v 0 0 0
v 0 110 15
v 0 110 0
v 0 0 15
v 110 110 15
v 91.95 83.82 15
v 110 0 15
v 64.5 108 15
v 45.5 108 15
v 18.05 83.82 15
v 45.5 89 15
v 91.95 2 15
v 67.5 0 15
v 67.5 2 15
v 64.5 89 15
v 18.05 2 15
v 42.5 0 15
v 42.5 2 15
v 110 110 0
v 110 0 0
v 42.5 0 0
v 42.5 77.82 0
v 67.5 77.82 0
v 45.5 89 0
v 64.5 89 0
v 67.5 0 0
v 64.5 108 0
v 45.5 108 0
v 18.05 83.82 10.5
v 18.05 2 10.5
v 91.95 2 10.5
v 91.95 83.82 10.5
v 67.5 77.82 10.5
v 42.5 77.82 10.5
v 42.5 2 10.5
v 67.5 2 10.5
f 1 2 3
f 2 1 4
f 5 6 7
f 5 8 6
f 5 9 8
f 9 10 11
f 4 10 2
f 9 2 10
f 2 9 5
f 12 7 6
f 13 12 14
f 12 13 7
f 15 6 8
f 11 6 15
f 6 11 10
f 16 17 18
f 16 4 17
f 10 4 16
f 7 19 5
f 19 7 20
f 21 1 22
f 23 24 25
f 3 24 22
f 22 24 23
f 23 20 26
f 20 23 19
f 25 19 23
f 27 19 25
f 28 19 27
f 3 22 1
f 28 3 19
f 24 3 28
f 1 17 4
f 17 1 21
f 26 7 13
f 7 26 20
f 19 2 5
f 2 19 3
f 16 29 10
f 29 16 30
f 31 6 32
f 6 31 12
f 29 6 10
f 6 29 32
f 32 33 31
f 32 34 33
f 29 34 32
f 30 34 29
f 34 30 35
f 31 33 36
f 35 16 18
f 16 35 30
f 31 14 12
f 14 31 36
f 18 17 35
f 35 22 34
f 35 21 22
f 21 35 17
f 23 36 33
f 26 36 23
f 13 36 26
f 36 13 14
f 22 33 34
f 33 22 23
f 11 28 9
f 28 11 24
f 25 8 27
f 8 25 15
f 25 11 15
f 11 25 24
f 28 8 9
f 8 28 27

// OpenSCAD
length = 110;
width = 110;
height = 15;

//Based on magnet size:
magnetBaseInnerDiameter = 19;
magnetHeight = 4.0;

//        elder drake 80.82 x 72.9

token1Width = 80.82 + 1;
token1Length = 72.9 + 1;
token1Height = 4 + .5;
token1SquareLipWidthRemainder = token1Length - 25;
token1SquareLipLengthRemainder = 4;


spaceBetweenCircles = 2;
wallThickness = spaceBetweenCircles;



difference(){
    cube([length, width, height]);


//----------------------------------
translate(
        [
            length/2 - token1Length/2,
            wallThickness,
            height - token1Height
        ])
        cube([token1Length,token1Width, token1Height]);
    translate([
        length/2 - (token1Length - token1SquareLipWidthRemainder)/2,
        0,
        0])
        cube([
            token1Length - token1SquareLipWidthRemainder,
            token1Width - token1SquareLipLengthRemainder,
            height]);

            
     

//----------------------------------------
   
    translate([length/2 - magnetBaseInnerDiameter/2, width - (wallThickness + magnetBaseInnerDiameter), 0])
        cube([magnetBaseInnerDiameter, magnetBaseInnerDiameter, height]);
        

}
